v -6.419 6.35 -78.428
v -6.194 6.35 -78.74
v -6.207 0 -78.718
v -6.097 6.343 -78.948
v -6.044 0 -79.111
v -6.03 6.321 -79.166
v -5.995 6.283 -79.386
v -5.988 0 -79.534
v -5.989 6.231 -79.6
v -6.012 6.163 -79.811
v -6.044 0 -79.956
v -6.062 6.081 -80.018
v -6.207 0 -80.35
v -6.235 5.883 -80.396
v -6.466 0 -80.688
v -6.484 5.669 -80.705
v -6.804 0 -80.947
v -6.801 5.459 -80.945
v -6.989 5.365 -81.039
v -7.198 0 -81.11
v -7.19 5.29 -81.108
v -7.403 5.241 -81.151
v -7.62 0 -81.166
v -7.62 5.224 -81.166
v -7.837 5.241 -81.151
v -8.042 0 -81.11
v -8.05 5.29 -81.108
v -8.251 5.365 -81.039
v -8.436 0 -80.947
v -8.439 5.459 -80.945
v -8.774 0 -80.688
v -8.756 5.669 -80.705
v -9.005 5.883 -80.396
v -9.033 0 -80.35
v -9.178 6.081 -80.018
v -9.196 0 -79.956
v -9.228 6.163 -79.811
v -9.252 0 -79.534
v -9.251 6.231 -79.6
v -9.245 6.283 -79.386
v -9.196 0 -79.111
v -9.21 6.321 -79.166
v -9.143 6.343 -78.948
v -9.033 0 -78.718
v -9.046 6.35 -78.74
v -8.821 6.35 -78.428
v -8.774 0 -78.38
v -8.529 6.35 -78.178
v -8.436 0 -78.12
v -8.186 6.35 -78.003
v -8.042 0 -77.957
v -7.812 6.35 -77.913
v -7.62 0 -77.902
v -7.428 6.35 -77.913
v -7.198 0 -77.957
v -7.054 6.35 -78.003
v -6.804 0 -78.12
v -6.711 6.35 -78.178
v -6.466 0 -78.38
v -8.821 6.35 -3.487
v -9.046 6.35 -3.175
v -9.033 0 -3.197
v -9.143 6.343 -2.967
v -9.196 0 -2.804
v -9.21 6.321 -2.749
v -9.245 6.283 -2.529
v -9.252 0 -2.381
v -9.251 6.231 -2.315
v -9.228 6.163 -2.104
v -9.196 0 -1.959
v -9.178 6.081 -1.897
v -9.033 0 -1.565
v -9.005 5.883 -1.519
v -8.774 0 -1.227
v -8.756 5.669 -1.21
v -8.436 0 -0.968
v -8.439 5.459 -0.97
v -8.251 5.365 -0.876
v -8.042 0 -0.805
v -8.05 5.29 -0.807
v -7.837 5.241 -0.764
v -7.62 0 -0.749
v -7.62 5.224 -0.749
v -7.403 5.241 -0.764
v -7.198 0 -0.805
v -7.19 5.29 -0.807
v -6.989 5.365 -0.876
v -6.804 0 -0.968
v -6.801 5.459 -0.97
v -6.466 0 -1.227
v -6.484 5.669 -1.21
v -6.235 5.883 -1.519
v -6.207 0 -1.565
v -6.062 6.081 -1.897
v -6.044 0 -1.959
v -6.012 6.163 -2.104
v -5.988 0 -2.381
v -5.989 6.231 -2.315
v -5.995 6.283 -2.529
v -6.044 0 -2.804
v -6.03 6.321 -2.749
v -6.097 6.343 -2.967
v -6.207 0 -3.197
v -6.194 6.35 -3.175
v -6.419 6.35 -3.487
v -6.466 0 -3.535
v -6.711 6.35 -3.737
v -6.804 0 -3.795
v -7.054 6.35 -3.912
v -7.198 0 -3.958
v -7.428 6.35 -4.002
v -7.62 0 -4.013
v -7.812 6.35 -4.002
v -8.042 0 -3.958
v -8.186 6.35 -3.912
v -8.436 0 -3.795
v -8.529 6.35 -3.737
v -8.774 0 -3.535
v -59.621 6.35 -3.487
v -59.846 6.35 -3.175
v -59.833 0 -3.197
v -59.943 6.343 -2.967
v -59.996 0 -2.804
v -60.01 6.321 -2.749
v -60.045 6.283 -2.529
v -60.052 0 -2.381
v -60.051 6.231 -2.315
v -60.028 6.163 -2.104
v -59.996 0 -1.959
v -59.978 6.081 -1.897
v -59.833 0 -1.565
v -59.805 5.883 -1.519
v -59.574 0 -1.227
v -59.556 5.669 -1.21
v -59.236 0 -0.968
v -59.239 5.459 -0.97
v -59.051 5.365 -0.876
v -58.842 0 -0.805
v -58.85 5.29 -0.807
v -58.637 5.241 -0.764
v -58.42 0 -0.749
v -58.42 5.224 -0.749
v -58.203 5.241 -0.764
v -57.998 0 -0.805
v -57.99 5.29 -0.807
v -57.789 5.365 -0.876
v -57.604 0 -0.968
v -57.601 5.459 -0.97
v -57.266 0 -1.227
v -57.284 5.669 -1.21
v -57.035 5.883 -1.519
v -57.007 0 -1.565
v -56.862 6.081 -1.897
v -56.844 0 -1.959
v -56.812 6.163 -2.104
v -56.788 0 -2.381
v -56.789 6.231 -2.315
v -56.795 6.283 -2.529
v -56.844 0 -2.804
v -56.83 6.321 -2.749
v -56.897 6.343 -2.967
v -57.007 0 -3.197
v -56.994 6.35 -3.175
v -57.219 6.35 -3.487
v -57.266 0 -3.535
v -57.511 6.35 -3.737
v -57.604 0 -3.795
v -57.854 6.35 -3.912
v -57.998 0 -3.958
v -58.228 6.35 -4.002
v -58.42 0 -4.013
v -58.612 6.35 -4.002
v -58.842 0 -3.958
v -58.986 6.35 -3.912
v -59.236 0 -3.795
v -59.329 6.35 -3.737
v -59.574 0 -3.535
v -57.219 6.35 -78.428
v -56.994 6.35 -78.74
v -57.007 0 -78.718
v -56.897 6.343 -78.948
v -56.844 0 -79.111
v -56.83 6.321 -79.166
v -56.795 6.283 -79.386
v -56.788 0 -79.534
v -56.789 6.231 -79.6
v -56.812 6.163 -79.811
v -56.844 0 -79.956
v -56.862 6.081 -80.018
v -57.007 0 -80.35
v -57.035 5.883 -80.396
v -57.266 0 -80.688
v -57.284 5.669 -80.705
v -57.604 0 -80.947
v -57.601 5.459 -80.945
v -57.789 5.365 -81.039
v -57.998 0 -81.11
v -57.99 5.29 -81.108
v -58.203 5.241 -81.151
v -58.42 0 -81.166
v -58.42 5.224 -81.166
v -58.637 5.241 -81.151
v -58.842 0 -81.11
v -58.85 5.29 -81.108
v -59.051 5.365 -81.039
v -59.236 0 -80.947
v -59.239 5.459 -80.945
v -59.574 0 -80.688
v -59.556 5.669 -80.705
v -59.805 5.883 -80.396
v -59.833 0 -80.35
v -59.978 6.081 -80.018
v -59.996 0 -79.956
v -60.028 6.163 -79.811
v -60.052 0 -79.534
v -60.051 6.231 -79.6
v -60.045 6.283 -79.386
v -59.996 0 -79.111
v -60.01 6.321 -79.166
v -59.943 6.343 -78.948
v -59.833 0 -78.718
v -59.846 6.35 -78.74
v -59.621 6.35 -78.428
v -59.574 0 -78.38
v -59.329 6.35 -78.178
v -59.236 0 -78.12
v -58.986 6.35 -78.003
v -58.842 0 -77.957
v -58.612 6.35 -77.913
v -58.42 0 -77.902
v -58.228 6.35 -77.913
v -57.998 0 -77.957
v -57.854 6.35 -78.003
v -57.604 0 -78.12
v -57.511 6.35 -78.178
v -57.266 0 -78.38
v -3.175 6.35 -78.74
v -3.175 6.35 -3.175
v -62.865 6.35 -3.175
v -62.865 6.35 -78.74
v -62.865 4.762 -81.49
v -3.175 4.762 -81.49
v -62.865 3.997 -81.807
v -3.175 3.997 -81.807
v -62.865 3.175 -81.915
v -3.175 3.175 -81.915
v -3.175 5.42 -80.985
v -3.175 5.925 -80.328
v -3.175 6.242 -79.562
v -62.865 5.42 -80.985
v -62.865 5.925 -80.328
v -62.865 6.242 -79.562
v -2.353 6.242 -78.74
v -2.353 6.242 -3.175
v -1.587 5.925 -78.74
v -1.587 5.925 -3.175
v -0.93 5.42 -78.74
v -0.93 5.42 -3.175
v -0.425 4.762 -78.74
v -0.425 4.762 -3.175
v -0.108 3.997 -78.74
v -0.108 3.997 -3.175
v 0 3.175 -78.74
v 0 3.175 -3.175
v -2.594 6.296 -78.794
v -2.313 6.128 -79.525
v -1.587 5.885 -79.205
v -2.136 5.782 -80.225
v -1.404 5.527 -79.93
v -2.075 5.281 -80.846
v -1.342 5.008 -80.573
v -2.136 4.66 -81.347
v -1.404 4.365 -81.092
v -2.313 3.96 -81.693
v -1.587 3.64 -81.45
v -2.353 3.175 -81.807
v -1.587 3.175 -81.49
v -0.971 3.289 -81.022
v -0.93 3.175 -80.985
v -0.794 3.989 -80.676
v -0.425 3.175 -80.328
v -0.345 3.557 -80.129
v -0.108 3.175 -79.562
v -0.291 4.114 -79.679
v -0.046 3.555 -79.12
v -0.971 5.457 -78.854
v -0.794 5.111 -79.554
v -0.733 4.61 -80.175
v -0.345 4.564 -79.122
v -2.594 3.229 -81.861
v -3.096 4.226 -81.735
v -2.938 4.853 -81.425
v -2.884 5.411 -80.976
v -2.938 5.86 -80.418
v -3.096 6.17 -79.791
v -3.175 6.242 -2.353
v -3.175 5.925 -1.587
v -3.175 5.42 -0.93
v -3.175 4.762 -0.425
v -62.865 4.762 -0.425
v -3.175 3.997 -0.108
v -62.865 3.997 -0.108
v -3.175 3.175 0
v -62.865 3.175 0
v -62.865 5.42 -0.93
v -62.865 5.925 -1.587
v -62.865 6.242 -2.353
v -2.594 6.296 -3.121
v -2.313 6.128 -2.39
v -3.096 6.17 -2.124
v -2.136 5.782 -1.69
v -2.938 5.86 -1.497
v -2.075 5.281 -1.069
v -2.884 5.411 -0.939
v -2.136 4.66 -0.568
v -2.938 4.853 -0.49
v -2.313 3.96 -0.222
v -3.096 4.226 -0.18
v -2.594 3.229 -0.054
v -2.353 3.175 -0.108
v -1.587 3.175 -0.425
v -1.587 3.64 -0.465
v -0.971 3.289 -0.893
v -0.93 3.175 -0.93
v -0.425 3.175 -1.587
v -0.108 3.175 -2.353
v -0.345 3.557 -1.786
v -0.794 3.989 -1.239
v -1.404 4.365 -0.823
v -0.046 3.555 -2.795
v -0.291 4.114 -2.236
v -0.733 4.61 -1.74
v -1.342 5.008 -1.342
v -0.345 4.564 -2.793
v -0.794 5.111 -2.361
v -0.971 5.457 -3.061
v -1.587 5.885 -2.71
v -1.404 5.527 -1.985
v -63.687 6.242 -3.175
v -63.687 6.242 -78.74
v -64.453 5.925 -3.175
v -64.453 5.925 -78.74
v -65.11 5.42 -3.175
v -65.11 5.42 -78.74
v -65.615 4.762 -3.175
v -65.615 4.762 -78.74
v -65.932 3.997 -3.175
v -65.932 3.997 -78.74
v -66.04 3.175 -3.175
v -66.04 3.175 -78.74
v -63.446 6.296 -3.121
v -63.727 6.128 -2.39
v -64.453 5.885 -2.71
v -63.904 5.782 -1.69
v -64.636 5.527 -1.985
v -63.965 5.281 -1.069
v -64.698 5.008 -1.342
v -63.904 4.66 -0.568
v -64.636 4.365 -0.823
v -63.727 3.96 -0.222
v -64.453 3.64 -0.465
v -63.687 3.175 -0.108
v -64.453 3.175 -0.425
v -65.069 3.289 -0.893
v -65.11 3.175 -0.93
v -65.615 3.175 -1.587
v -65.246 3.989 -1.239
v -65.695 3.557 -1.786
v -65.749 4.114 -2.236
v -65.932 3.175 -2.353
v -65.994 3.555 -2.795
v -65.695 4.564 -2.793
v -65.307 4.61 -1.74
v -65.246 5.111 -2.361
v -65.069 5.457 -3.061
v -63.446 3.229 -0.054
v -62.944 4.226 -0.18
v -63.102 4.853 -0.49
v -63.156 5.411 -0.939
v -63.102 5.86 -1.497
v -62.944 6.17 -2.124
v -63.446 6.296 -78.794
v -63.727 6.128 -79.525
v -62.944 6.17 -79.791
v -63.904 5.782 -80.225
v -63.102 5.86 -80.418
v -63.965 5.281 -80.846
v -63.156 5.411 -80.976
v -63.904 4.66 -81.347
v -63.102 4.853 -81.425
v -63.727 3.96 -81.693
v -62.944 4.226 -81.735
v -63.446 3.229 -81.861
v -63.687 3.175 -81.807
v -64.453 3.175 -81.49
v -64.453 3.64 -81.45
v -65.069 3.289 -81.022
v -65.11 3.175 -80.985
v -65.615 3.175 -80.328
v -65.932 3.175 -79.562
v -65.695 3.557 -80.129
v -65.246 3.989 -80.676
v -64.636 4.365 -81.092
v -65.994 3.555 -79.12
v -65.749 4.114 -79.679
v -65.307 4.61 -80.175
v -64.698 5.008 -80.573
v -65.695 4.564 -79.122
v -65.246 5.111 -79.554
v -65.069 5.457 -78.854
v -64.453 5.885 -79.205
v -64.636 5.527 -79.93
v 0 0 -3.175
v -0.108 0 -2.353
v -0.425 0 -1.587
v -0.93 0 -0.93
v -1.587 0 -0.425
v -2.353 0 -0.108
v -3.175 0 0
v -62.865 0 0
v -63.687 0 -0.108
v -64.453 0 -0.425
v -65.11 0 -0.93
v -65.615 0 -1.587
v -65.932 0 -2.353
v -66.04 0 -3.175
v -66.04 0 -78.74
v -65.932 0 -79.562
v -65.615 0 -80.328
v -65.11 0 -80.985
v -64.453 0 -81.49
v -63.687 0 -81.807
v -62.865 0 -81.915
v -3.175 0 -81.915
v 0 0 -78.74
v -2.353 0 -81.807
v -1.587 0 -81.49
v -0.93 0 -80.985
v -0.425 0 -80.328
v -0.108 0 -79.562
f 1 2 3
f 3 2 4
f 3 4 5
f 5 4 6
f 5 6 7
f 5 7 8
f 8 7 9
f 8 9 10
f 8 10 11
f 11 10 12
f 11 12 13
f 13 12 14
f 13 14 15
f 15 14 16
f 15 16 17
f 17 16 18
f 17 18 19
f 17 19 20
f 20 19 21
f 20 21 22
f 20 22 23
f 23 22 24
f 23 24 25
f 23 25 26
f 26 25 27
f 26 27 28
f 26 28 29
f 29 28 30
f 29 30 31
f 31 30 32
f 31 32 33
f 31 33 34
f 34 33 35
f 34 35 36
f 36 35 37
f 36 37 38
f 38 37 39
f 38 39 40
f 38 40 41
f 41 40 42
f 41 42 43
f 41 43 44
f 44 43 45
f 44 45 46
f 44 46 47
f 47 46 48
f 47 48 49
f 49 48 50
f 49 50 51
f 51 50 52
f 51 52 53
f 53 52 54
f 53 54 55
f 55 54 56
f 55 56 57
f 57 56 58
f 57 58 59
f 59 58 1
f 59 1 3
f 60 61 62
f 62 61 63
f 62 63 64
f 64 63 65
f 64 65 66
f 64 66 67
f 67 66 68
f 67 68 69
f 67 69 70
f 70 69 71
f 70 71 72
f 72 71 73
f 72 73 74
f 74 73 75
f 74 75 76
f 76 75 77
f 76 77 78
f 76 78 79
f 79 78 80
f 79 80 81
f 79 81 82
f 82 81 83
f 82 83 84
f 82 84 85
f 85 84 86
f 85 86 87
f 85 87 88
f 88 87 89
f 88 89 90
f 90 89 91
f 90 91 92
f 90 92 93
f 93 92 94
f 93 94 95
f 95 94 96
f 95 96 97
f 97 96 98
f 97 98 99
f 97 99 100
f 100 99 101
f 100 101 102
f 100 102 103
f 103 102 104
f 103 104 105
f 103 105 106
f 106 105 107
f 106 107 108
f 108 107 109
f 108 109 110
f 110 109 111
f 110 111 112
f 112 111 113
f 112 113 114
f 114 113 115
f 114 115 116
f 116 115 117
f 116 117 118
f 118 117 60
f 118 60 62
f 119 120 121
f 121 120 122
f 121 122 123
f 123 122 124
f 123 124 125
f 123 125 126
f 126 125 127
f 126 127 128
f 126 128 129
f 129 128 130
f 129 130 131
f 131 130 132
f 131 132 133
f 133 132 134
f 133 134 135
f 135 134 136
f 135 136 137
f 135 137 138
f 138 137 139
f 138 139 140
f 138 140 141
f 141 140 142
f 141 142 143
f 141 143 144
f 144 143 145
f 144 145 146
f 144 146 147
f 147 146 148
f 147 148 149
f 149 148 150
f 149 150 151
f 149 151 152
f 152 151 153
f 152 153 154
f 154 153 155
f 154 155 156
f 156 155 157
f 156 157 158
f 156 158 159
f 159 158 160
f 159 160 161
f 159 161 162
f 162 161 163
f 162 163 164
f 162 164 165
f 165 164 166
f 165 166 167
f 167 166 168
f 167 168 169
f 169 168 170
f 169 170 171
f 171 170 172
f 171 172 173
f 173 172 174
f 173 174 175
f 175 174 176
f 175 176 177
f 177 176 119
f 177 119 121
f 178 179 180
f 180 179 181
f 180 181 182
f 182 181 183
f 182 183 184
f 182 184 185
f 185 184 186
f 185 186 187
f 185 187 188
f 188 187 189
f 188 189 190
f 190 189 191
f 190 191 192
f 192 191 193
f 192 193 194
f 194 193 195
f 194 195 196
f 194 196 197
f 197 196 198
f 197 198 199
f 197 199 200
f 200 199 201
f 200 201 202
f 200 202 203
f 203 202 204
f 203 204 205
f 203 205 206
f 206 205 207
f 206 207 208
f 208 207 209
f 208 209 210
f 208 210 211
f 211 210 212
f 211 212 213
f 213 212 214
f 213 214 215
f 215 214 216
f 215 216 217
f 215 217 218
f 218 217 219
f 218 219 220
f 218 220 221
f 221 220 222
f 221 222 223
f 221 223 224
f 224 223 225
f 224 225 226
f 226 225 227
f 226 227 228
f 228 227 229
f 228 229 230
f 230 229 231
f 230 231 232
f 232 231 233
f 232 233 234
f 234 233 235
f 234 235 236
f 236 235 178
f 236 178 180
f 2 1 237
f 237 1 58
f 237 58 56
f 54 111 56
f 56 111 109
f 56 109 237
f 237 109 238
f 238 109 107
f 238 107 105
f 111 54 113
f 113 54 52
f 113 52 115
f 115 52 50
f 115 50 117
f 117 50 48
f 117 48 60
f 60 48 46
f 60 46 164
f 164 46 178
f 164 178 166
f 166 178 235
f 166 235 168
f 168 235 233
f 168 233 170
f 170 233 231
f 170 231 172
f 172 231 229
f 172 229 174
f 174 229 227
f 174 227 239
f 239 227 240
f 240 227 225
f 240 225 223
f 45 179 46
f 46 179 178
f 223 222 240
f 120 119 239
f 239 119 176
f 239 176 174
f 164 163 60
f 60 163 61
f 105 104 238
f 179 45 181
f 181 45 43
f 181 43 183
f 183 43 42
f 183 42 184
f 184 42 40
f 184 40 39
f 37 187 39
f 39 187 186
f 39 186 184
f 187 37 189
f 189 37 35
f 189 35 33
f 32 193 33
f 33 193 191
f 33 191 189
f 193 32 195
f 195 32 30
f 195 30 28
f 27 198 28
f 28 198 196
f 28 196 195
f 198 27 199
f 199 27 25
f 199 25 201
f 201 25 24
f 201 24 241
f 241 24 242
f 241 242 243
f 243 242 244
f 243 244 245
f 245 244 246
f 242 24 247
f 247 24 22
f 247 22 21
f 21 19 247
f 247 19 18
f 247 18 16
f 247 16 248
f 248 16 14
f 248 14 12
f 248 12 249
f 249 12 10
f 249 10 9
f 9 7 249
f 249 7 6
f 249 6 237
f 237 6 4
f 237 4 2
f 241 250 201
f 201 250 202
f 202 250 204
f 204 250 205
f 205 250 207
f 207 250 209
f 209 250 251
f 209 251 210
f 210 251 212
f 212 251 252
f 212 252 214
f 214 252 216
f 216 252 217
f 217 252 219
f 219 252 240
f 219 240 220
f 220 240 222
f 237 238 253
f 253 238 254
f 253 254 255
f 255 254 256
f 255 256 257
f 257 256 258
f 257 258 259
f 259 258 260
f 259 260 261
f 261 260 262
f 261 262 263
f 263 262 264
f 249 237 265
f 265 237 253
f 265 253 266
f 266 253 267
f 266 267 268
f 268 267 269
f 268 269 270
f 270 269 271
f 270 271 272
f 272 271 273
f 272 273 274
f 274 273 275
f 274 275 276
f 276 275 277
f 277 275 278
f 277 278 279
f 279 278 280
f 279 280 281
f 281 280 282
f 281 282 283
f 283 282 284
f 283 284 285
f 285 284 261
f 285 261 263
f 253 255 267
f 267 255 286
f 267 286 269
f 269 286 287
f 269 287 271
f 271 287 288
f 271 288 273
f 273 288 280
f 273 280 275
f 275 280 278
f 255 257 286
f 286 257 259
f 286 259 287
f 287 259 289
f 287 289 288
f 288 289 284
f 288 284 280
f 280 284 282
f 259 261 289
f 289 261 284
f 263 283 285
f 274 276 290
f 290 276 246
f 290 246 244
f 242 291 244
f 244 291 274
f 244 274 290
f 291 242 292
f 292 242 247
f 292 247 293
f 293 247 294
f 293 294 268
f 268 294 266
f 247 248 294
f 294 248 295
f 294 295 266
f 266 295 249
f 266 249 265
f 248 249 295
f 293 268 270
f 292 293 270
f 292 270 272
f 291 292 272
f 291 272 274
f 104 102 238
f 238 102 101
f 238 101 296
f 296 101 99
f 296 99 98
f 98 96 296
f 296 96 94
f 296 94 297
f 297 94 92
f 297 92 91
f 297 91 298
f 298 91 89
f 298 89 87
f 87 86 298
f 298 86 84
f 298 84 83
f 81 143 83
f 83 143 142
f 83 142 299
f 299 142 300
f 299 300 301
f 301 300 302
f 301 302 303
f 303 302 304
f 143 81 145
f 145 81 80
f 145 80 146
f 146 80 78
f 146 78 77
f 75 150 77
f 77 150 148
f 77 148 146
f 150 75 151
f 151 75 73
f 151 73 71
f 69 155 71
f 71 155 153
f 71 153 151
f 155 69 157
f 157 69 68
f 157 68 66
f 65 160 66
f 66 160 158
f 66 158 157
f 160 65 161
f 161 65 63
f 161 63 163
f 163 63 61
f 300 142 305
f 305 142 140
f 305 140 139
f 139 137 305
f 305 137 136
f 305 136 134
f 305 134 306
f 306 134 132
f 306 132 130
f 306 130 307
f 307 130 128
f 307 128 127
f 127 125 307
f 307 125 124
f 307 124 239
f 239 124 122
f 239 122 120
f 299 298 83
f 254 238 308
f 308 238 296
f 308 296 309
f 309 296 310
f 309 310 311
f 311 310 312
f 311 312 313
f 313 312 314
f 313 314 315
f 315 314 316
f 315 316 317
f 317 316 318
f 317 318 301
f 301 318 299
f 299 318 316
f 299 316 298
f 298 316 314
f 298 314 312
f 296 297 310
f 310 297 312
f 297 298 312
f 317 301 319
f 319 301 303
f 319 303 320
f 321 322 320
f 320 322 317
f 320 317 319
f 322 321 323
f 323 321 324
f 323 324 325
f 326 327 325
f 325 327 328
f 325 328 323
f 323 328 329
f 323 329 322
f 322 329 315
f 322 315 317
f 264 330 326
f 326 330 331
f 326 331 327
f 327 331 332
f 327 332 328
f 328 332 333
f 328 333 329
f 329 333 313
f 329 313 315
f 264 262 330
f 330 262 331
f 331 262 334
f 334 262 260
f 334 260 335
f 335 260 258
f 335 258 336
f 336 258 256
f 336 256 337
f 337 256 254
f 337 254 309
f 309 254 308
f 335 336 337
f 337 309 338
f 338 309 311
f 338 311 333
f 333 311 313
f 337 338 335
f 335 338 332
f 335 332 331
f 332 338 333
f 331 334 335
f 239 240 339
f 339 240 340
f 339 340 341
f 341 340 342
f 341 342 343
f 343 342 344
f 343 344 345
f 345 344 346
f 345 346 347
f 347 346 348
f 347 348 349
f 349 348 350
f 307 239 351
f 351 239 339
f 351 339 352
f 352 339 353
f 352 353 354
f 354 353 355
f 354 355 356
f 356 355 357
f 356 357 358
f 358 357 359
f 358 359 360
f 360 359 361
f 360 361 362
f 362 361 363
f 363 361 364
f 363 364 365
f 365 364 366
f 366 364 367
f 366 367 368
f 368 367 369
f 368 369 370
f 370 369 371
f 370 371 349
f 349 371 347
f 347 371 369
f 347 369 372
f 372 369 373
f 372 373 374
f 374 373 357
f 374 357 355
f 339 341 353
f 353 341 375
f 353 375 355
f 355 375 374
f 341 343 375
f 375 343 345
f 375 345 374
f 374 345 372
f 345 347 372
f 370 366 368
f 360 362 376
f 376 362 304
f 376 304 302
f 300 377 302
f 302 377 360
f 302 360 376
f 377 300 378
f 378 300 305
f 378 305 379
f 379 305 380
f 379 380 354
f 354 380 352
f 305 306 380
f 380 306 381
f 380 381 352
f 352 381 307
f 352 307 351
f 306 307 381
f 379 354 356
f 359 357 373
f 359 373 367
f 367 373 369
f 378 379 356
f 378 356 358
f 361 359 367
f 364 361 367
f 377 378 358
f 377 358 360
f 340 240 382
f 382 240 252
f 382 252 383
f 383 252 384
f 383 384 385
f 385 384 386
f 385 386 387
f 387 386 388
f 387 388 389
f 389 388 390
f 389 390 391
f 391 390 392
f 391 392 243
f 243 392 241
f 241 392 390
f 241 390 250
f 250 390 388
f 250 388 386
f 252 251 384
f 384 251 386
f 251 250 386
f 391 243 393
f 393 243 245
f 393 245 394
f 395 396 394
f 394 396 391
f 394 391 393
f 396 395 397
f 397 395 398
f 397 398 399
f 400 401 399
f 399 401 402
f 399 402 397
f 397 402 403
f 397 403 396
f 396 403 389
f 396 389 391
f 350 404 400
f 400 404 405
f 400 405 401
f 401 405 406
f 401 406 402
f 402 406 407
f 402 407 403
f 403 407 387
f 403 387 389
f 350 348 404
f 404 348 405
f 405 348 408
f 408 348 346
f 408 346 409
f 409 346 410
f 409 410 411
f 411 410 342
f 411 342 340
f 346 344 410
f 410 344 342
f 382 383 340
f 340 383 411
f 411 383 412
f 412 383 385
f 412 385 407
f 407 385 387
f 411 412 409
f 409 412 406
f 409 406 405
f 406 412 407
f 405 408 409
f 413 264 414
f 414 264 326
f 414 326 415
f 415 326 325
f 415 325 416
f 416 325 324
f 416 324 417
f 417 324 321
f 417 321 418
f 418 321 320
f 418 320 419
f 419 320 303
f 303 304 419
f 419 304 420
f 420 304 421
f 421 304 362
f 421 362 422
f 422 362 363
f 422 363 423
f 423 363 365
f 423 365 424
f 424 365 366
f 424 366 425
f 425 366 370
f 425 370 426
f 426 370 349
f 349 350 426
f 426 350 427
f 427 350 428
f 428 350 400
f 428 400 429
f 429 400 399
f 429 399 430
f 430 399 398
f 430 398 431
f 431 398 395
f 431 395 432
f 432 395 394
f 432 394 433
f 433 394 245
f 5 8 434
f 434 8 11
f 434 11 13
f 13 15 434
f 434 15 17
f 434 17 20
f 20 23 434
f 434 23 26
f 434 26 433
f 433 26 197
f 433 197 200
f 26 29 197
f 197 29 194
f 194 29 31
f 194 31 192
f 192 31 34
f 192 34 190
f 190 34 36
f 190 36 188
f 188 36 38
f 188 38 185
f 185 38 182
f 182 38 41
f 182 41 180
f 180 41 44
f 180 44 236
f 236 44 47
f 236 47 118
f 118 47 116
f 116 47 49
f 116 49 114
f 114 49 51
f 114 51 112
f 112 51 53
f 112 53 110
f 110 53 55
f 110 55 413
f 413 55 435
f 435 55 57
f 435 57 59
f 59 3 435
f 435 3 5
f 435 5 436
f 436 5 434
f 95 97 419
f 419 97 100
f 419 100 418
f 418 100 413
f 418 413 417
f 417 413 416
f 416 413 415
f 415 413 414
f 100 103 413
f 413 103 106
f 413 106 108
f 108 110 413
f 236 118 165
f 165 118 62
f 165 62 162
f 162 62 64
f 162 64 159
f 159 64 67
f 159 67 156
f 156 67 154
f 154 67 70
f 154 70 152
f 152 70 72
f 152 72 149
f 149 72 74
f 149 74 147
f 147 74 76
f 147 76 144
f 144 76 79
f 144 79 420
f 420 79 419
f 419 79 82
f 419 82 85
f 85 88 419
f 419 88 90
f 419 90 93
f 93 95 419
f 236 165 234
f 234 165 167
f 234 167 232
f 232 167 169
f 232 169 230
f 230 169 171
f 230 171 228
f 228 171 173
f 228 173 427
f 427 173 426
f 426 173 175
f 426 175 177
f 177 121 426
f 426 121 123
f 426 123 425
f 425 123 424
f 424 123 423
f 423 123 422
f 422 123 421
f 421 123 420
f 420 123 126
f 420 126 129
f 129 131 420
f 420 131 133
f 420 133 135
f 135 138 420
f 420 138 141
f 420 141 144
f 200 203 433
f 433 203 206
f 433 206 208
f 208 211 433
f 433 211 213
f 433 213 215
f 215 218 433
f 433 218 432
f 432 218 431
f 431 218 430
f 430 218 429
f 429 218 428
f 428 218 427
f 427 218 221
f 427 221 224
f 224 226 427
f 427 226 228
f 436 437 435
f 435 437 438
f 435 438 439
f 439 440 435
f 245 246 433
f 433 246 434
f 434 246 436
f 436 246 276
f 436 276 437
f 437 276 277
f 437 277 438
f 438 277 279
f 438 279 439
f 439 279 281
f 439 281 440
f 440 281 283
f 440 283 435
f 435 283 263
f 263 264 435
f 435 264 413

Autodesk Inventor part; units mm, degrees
ref_plane "YZ Plane" through (0, 0, 0) normal (1, 0, 0) x (0, 1, 0)
ref_plane "XZ Plane" through (0, 0, 0) normal (0, 1, 0) x (-1, 0, 0)
ref_plane "XY Plane" through (0, 0, 0) normal (0, 0, 1) x (1, 0, 0)
sketch "Sketch1" plane through (0, 0, 0) normal (0, 1, 0) x (-1, 0, 0)
  line L0 (0, 0) -> (66.04, 0)
  line L1 (66.04, 0) -> (66.04, -81.915)
  line L2 (66.04, -81.915) -> (0, -81.915)
  line L3 (0, -81.915) -> (0, 0)
  dimension "d0" = 66.04
  dimension "d1" = 81.915
extrude "Extrusion1" add sketch "Sketch1" along normal blind 6.35
fillet "Fillet1" radius 3.175 4 edges at (0, 3.175, 0) (-66.04, 3.175, 0) (0, 3.175, -81.915) (-66.04, 3.175, -81.915)
fillet "Fillet2" radius 3.175 8 edges at (-0.9299, 6.35, -80.9851) (-33.02, 6.35, -81.915) (-65.1101, 6.35, -80.9851) (-66.04, 6.35, -40.9575) (-65.1101, 6.35, -0.9299) (-33.02, 6.35, 0) (-0.9299, 6.35, -0.9299) (0, 6.35, -40.9575)
sketch "Sketch2" plane through (0, 6.35, 0) normal (0, 1, 0) x (1, 0, 0)
  line L0 (0, 0) -> (0, 23.0418) construction
  line L1 (0, 78.74) -> (0, 3.175) projected
  line L2 (0, 0) -> (-15.3745, 0) construction
  line L3 (-3.175, 0) -> (-62.865, 0) projected
  line L4 (0, 2.3813) -> (-36.1213, 2.3813) construction
  line L5 (-33.02, 0) -> (-33.02, 49.3607) construction
  circle A0 centre (-7.62, 2.3813) radius 1.632
  line L6 (-3.175, 78.74) -> (-3.175, 3.175) projected
  line L7 (-3.175, 40.9575) -> (-28.1102, 40.9575) construction
  circle A1 centre (-58.42, 2.3813) radius 1.632
  circle A2 centre (-7.62, 79.5337) radius 1.632
  circle A3 centre (-58.42, 79.5337) radius 1.632
  dimension "d6" = 2.3813
  dimension "d7" = 3.2639
  dimension "d8" = 25.4
extrude "Extrusion2" cut sketch "Sketch2" against normal blind 6.35
properties part number "top"
